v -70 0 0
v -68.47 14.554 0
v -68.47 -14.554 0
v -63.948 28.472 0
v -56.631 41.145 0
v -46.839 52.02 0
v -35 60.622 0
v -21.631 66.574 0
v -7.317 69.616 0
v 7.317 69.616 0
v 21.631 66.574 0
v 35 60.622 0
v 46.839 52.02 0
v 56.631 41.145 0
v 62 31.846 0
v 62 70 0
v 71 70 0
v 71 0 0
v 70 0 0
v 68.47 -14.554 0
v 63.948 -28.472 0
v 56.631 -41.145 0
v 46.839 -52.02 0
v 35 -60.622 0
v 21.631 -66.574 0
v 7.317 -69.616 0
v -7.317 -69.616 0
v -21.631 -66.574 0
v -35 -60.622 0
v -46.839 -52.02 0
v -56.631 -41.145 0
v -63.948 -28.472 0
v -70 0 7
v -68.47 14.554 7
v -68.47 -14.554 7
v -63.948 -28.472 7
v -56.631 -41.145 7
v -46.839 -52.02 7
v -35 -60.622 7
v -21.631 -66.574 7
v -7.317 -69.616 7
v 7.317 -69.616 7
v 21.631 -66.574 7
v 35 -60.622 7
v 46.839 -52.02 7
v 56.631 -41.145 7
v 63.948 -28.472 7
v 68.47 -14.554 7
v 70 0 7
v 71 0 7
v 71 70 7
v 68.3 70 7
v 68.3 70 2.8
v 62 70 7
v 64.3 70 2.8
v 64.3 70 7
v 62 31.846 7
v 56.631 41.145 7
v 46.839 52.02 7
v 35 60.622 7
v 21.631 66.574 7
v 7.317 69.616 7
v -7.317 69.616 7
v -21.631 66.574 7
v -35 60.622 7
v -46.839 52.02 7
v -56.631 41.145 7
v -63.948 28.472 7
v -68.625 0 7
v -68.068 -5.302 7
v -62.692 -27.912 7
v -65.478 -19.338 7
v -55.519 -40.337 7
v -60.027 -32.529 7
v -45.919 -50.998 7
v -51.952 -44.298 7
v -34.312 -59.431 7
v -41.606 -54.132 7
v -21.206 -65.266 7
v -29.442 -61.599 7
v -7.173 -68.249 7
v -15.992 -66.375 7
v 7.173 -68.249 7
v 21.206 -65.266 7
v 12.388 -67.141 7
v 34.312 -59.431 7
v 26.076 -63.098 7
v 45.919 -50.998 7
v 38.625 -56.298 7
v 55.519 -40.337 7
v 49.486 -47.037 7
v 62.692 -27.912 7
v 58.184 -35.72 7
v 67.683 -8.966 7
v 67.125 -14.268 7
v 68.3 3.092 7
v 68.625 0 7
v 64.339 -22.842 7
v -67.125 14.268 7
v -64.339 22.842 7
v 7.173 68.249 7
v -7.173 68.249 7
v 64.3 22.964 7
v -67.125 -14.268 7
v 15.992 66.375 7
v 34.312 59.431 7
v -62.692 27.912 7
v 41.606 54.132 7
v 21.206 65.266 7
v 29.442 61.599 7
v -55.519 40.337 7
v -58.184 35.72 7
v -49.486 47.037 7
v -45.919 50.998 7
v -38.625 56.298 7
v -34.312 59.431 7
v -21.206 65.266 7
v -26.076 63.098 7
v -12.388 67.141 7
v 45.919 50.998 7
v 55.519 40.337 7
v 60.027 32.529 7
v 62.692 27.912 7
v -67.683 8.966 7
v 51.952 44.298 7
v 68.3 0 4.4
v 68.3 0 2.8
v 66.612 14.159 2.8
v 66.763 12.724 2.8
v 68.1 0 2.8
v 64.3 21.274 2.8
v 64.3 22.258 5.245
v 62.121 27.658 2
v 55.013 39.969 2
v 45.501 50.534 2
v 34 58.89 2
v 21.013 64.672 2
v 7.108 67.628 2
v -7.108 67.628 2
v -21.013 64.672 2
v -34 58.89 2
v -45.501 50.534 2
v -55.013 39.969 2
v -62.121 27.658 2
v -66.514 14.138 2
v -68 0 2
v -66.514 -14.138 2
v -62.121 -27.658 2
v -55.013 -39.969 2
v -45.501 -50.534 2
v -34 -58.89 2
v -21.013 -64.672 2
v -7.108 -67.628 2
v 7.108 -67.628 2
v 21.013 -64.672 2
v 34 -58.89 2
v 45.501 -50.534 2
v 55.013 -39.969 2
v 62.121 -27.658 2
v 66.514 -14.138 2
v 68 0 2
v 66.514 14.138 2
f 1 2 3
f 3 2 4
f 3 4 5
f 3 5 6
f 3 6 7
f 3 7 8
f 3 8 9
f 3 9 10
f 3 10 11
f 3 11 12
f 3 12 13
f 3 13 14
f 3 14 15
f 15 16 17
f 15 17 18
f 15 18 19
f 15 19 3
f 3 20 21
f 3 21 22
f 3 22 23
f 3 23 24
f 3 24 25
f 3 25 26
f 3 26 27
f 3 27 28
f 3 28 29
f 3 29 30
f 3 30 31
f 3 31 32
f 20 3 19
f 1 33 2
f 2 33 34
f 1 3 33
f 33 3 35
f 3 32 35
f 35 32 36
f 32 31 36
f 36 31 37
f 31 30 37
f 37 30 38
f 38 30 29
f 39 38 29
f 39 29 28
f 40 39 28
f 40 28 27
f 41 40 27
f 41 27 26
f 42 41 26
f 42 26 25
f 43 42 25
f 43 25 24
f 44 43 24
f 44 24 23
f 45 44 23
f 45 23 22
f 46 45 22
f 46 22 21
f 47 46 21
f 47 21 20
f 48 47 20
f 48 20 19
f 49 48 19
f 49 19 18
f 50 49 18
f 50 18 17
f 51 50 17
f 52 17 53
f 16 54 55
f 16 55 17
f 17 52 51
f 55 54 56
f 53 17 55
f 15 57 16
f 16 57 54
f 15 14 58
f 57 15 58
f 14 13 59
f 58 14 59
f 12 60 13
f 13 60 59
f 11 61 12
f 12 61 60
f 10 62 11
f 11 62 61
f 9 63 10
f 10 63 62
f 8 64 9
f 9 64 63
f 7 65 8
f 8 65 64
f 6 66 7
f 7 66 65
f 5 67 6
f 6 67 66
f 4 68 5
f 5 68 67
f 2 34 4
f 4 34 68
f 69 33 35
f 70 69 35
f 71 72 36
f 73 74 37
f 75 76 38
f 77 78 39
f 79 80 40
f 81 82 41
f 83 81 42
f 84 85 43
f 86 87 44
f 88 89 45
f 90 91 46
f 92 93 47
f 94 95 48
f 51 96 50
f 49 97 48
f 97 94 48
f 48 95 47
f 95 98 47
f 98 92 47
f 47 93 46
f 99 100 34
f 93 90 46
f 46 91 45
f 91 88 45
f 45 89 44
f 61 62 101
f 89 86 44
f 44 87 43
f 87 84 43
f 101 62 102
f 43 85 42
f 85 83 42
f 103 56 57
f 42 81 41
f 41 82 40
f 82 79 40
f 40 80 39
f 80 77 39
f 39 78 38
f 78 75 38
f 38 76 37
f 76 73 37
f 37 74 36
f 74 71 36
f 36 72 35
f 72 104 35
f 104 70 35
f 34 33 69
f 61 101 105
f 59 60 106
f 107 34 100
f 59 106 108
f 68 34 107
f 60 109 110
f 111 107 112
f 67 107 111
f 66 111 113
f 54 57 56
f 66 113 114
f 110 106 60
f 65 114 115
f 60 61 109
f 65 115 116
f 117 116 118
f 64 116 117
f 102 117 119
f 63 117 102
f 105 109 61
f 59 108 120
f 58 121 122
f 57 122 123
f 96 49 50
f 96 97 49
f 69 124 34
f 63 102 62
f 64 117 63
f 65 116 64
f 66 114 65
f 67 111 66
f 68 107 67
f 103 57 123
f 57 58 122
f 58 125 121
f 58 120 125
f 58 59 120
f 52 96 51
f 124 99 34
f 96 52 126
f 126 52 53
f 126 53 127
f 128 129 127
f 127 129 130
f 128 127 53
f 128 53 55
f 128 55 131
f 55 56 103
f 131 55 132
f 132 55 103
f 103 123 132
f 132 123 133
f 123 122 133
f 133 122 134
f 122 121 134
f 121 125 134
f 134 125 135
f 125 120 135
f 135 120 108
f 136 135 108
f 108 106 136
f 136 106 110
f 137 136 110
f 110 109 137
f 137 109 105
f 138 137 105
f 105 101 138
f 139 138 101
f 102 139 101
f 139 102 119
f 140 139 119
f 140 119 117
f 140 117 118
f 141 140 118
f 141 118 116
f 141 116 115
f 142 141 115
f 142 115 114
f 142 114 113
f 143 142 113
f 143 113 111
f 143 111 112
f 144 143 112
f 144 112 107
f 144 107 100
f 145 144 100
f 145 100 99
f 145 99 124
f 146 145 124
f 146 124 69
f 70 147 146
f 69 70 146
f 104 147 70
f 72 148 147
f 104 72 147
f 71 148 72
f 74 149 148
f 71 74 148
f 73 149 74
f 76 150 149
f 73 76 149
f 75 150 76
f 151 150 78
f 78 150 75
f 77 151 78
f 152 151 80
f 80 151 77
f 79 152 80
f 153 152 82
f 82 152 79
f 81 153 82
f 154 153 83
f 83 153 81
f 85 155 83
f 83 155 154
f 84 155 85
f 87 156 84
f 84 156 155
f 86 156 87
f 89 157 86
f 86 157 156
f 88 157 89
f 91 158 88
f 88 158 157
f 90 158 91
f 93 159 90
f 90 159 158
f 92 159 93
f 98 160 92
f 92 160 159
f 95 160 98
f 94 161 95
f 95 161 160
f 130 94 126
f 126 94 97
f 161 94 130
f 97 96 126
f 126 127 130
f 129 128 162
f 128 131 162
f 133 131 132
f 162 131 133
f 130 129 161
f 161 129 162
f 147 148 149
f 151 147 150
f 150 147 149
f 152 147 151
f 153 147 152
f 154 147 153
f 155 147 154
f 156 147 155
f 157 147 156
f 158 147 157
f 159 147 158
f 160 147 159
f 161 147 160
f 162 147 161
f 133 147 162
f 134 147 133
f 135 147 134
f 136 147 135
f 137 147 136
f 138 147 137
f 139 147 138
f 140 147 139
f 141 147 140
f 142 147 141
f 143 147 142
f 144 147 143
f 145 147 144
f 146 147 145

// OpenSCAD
difference() {
union() {
translate([0,0,0]) cylinder(7.0,70,70,center=false); 
translate([62,0,0]) cube([9,70,7],center=false); 
}
union() {
translate([0,0,2]) cylinder(8.0,68,69,center=false); 
translate([64.3,0,2.8]) cube([4,80,4.2],center=false); 
}
}
